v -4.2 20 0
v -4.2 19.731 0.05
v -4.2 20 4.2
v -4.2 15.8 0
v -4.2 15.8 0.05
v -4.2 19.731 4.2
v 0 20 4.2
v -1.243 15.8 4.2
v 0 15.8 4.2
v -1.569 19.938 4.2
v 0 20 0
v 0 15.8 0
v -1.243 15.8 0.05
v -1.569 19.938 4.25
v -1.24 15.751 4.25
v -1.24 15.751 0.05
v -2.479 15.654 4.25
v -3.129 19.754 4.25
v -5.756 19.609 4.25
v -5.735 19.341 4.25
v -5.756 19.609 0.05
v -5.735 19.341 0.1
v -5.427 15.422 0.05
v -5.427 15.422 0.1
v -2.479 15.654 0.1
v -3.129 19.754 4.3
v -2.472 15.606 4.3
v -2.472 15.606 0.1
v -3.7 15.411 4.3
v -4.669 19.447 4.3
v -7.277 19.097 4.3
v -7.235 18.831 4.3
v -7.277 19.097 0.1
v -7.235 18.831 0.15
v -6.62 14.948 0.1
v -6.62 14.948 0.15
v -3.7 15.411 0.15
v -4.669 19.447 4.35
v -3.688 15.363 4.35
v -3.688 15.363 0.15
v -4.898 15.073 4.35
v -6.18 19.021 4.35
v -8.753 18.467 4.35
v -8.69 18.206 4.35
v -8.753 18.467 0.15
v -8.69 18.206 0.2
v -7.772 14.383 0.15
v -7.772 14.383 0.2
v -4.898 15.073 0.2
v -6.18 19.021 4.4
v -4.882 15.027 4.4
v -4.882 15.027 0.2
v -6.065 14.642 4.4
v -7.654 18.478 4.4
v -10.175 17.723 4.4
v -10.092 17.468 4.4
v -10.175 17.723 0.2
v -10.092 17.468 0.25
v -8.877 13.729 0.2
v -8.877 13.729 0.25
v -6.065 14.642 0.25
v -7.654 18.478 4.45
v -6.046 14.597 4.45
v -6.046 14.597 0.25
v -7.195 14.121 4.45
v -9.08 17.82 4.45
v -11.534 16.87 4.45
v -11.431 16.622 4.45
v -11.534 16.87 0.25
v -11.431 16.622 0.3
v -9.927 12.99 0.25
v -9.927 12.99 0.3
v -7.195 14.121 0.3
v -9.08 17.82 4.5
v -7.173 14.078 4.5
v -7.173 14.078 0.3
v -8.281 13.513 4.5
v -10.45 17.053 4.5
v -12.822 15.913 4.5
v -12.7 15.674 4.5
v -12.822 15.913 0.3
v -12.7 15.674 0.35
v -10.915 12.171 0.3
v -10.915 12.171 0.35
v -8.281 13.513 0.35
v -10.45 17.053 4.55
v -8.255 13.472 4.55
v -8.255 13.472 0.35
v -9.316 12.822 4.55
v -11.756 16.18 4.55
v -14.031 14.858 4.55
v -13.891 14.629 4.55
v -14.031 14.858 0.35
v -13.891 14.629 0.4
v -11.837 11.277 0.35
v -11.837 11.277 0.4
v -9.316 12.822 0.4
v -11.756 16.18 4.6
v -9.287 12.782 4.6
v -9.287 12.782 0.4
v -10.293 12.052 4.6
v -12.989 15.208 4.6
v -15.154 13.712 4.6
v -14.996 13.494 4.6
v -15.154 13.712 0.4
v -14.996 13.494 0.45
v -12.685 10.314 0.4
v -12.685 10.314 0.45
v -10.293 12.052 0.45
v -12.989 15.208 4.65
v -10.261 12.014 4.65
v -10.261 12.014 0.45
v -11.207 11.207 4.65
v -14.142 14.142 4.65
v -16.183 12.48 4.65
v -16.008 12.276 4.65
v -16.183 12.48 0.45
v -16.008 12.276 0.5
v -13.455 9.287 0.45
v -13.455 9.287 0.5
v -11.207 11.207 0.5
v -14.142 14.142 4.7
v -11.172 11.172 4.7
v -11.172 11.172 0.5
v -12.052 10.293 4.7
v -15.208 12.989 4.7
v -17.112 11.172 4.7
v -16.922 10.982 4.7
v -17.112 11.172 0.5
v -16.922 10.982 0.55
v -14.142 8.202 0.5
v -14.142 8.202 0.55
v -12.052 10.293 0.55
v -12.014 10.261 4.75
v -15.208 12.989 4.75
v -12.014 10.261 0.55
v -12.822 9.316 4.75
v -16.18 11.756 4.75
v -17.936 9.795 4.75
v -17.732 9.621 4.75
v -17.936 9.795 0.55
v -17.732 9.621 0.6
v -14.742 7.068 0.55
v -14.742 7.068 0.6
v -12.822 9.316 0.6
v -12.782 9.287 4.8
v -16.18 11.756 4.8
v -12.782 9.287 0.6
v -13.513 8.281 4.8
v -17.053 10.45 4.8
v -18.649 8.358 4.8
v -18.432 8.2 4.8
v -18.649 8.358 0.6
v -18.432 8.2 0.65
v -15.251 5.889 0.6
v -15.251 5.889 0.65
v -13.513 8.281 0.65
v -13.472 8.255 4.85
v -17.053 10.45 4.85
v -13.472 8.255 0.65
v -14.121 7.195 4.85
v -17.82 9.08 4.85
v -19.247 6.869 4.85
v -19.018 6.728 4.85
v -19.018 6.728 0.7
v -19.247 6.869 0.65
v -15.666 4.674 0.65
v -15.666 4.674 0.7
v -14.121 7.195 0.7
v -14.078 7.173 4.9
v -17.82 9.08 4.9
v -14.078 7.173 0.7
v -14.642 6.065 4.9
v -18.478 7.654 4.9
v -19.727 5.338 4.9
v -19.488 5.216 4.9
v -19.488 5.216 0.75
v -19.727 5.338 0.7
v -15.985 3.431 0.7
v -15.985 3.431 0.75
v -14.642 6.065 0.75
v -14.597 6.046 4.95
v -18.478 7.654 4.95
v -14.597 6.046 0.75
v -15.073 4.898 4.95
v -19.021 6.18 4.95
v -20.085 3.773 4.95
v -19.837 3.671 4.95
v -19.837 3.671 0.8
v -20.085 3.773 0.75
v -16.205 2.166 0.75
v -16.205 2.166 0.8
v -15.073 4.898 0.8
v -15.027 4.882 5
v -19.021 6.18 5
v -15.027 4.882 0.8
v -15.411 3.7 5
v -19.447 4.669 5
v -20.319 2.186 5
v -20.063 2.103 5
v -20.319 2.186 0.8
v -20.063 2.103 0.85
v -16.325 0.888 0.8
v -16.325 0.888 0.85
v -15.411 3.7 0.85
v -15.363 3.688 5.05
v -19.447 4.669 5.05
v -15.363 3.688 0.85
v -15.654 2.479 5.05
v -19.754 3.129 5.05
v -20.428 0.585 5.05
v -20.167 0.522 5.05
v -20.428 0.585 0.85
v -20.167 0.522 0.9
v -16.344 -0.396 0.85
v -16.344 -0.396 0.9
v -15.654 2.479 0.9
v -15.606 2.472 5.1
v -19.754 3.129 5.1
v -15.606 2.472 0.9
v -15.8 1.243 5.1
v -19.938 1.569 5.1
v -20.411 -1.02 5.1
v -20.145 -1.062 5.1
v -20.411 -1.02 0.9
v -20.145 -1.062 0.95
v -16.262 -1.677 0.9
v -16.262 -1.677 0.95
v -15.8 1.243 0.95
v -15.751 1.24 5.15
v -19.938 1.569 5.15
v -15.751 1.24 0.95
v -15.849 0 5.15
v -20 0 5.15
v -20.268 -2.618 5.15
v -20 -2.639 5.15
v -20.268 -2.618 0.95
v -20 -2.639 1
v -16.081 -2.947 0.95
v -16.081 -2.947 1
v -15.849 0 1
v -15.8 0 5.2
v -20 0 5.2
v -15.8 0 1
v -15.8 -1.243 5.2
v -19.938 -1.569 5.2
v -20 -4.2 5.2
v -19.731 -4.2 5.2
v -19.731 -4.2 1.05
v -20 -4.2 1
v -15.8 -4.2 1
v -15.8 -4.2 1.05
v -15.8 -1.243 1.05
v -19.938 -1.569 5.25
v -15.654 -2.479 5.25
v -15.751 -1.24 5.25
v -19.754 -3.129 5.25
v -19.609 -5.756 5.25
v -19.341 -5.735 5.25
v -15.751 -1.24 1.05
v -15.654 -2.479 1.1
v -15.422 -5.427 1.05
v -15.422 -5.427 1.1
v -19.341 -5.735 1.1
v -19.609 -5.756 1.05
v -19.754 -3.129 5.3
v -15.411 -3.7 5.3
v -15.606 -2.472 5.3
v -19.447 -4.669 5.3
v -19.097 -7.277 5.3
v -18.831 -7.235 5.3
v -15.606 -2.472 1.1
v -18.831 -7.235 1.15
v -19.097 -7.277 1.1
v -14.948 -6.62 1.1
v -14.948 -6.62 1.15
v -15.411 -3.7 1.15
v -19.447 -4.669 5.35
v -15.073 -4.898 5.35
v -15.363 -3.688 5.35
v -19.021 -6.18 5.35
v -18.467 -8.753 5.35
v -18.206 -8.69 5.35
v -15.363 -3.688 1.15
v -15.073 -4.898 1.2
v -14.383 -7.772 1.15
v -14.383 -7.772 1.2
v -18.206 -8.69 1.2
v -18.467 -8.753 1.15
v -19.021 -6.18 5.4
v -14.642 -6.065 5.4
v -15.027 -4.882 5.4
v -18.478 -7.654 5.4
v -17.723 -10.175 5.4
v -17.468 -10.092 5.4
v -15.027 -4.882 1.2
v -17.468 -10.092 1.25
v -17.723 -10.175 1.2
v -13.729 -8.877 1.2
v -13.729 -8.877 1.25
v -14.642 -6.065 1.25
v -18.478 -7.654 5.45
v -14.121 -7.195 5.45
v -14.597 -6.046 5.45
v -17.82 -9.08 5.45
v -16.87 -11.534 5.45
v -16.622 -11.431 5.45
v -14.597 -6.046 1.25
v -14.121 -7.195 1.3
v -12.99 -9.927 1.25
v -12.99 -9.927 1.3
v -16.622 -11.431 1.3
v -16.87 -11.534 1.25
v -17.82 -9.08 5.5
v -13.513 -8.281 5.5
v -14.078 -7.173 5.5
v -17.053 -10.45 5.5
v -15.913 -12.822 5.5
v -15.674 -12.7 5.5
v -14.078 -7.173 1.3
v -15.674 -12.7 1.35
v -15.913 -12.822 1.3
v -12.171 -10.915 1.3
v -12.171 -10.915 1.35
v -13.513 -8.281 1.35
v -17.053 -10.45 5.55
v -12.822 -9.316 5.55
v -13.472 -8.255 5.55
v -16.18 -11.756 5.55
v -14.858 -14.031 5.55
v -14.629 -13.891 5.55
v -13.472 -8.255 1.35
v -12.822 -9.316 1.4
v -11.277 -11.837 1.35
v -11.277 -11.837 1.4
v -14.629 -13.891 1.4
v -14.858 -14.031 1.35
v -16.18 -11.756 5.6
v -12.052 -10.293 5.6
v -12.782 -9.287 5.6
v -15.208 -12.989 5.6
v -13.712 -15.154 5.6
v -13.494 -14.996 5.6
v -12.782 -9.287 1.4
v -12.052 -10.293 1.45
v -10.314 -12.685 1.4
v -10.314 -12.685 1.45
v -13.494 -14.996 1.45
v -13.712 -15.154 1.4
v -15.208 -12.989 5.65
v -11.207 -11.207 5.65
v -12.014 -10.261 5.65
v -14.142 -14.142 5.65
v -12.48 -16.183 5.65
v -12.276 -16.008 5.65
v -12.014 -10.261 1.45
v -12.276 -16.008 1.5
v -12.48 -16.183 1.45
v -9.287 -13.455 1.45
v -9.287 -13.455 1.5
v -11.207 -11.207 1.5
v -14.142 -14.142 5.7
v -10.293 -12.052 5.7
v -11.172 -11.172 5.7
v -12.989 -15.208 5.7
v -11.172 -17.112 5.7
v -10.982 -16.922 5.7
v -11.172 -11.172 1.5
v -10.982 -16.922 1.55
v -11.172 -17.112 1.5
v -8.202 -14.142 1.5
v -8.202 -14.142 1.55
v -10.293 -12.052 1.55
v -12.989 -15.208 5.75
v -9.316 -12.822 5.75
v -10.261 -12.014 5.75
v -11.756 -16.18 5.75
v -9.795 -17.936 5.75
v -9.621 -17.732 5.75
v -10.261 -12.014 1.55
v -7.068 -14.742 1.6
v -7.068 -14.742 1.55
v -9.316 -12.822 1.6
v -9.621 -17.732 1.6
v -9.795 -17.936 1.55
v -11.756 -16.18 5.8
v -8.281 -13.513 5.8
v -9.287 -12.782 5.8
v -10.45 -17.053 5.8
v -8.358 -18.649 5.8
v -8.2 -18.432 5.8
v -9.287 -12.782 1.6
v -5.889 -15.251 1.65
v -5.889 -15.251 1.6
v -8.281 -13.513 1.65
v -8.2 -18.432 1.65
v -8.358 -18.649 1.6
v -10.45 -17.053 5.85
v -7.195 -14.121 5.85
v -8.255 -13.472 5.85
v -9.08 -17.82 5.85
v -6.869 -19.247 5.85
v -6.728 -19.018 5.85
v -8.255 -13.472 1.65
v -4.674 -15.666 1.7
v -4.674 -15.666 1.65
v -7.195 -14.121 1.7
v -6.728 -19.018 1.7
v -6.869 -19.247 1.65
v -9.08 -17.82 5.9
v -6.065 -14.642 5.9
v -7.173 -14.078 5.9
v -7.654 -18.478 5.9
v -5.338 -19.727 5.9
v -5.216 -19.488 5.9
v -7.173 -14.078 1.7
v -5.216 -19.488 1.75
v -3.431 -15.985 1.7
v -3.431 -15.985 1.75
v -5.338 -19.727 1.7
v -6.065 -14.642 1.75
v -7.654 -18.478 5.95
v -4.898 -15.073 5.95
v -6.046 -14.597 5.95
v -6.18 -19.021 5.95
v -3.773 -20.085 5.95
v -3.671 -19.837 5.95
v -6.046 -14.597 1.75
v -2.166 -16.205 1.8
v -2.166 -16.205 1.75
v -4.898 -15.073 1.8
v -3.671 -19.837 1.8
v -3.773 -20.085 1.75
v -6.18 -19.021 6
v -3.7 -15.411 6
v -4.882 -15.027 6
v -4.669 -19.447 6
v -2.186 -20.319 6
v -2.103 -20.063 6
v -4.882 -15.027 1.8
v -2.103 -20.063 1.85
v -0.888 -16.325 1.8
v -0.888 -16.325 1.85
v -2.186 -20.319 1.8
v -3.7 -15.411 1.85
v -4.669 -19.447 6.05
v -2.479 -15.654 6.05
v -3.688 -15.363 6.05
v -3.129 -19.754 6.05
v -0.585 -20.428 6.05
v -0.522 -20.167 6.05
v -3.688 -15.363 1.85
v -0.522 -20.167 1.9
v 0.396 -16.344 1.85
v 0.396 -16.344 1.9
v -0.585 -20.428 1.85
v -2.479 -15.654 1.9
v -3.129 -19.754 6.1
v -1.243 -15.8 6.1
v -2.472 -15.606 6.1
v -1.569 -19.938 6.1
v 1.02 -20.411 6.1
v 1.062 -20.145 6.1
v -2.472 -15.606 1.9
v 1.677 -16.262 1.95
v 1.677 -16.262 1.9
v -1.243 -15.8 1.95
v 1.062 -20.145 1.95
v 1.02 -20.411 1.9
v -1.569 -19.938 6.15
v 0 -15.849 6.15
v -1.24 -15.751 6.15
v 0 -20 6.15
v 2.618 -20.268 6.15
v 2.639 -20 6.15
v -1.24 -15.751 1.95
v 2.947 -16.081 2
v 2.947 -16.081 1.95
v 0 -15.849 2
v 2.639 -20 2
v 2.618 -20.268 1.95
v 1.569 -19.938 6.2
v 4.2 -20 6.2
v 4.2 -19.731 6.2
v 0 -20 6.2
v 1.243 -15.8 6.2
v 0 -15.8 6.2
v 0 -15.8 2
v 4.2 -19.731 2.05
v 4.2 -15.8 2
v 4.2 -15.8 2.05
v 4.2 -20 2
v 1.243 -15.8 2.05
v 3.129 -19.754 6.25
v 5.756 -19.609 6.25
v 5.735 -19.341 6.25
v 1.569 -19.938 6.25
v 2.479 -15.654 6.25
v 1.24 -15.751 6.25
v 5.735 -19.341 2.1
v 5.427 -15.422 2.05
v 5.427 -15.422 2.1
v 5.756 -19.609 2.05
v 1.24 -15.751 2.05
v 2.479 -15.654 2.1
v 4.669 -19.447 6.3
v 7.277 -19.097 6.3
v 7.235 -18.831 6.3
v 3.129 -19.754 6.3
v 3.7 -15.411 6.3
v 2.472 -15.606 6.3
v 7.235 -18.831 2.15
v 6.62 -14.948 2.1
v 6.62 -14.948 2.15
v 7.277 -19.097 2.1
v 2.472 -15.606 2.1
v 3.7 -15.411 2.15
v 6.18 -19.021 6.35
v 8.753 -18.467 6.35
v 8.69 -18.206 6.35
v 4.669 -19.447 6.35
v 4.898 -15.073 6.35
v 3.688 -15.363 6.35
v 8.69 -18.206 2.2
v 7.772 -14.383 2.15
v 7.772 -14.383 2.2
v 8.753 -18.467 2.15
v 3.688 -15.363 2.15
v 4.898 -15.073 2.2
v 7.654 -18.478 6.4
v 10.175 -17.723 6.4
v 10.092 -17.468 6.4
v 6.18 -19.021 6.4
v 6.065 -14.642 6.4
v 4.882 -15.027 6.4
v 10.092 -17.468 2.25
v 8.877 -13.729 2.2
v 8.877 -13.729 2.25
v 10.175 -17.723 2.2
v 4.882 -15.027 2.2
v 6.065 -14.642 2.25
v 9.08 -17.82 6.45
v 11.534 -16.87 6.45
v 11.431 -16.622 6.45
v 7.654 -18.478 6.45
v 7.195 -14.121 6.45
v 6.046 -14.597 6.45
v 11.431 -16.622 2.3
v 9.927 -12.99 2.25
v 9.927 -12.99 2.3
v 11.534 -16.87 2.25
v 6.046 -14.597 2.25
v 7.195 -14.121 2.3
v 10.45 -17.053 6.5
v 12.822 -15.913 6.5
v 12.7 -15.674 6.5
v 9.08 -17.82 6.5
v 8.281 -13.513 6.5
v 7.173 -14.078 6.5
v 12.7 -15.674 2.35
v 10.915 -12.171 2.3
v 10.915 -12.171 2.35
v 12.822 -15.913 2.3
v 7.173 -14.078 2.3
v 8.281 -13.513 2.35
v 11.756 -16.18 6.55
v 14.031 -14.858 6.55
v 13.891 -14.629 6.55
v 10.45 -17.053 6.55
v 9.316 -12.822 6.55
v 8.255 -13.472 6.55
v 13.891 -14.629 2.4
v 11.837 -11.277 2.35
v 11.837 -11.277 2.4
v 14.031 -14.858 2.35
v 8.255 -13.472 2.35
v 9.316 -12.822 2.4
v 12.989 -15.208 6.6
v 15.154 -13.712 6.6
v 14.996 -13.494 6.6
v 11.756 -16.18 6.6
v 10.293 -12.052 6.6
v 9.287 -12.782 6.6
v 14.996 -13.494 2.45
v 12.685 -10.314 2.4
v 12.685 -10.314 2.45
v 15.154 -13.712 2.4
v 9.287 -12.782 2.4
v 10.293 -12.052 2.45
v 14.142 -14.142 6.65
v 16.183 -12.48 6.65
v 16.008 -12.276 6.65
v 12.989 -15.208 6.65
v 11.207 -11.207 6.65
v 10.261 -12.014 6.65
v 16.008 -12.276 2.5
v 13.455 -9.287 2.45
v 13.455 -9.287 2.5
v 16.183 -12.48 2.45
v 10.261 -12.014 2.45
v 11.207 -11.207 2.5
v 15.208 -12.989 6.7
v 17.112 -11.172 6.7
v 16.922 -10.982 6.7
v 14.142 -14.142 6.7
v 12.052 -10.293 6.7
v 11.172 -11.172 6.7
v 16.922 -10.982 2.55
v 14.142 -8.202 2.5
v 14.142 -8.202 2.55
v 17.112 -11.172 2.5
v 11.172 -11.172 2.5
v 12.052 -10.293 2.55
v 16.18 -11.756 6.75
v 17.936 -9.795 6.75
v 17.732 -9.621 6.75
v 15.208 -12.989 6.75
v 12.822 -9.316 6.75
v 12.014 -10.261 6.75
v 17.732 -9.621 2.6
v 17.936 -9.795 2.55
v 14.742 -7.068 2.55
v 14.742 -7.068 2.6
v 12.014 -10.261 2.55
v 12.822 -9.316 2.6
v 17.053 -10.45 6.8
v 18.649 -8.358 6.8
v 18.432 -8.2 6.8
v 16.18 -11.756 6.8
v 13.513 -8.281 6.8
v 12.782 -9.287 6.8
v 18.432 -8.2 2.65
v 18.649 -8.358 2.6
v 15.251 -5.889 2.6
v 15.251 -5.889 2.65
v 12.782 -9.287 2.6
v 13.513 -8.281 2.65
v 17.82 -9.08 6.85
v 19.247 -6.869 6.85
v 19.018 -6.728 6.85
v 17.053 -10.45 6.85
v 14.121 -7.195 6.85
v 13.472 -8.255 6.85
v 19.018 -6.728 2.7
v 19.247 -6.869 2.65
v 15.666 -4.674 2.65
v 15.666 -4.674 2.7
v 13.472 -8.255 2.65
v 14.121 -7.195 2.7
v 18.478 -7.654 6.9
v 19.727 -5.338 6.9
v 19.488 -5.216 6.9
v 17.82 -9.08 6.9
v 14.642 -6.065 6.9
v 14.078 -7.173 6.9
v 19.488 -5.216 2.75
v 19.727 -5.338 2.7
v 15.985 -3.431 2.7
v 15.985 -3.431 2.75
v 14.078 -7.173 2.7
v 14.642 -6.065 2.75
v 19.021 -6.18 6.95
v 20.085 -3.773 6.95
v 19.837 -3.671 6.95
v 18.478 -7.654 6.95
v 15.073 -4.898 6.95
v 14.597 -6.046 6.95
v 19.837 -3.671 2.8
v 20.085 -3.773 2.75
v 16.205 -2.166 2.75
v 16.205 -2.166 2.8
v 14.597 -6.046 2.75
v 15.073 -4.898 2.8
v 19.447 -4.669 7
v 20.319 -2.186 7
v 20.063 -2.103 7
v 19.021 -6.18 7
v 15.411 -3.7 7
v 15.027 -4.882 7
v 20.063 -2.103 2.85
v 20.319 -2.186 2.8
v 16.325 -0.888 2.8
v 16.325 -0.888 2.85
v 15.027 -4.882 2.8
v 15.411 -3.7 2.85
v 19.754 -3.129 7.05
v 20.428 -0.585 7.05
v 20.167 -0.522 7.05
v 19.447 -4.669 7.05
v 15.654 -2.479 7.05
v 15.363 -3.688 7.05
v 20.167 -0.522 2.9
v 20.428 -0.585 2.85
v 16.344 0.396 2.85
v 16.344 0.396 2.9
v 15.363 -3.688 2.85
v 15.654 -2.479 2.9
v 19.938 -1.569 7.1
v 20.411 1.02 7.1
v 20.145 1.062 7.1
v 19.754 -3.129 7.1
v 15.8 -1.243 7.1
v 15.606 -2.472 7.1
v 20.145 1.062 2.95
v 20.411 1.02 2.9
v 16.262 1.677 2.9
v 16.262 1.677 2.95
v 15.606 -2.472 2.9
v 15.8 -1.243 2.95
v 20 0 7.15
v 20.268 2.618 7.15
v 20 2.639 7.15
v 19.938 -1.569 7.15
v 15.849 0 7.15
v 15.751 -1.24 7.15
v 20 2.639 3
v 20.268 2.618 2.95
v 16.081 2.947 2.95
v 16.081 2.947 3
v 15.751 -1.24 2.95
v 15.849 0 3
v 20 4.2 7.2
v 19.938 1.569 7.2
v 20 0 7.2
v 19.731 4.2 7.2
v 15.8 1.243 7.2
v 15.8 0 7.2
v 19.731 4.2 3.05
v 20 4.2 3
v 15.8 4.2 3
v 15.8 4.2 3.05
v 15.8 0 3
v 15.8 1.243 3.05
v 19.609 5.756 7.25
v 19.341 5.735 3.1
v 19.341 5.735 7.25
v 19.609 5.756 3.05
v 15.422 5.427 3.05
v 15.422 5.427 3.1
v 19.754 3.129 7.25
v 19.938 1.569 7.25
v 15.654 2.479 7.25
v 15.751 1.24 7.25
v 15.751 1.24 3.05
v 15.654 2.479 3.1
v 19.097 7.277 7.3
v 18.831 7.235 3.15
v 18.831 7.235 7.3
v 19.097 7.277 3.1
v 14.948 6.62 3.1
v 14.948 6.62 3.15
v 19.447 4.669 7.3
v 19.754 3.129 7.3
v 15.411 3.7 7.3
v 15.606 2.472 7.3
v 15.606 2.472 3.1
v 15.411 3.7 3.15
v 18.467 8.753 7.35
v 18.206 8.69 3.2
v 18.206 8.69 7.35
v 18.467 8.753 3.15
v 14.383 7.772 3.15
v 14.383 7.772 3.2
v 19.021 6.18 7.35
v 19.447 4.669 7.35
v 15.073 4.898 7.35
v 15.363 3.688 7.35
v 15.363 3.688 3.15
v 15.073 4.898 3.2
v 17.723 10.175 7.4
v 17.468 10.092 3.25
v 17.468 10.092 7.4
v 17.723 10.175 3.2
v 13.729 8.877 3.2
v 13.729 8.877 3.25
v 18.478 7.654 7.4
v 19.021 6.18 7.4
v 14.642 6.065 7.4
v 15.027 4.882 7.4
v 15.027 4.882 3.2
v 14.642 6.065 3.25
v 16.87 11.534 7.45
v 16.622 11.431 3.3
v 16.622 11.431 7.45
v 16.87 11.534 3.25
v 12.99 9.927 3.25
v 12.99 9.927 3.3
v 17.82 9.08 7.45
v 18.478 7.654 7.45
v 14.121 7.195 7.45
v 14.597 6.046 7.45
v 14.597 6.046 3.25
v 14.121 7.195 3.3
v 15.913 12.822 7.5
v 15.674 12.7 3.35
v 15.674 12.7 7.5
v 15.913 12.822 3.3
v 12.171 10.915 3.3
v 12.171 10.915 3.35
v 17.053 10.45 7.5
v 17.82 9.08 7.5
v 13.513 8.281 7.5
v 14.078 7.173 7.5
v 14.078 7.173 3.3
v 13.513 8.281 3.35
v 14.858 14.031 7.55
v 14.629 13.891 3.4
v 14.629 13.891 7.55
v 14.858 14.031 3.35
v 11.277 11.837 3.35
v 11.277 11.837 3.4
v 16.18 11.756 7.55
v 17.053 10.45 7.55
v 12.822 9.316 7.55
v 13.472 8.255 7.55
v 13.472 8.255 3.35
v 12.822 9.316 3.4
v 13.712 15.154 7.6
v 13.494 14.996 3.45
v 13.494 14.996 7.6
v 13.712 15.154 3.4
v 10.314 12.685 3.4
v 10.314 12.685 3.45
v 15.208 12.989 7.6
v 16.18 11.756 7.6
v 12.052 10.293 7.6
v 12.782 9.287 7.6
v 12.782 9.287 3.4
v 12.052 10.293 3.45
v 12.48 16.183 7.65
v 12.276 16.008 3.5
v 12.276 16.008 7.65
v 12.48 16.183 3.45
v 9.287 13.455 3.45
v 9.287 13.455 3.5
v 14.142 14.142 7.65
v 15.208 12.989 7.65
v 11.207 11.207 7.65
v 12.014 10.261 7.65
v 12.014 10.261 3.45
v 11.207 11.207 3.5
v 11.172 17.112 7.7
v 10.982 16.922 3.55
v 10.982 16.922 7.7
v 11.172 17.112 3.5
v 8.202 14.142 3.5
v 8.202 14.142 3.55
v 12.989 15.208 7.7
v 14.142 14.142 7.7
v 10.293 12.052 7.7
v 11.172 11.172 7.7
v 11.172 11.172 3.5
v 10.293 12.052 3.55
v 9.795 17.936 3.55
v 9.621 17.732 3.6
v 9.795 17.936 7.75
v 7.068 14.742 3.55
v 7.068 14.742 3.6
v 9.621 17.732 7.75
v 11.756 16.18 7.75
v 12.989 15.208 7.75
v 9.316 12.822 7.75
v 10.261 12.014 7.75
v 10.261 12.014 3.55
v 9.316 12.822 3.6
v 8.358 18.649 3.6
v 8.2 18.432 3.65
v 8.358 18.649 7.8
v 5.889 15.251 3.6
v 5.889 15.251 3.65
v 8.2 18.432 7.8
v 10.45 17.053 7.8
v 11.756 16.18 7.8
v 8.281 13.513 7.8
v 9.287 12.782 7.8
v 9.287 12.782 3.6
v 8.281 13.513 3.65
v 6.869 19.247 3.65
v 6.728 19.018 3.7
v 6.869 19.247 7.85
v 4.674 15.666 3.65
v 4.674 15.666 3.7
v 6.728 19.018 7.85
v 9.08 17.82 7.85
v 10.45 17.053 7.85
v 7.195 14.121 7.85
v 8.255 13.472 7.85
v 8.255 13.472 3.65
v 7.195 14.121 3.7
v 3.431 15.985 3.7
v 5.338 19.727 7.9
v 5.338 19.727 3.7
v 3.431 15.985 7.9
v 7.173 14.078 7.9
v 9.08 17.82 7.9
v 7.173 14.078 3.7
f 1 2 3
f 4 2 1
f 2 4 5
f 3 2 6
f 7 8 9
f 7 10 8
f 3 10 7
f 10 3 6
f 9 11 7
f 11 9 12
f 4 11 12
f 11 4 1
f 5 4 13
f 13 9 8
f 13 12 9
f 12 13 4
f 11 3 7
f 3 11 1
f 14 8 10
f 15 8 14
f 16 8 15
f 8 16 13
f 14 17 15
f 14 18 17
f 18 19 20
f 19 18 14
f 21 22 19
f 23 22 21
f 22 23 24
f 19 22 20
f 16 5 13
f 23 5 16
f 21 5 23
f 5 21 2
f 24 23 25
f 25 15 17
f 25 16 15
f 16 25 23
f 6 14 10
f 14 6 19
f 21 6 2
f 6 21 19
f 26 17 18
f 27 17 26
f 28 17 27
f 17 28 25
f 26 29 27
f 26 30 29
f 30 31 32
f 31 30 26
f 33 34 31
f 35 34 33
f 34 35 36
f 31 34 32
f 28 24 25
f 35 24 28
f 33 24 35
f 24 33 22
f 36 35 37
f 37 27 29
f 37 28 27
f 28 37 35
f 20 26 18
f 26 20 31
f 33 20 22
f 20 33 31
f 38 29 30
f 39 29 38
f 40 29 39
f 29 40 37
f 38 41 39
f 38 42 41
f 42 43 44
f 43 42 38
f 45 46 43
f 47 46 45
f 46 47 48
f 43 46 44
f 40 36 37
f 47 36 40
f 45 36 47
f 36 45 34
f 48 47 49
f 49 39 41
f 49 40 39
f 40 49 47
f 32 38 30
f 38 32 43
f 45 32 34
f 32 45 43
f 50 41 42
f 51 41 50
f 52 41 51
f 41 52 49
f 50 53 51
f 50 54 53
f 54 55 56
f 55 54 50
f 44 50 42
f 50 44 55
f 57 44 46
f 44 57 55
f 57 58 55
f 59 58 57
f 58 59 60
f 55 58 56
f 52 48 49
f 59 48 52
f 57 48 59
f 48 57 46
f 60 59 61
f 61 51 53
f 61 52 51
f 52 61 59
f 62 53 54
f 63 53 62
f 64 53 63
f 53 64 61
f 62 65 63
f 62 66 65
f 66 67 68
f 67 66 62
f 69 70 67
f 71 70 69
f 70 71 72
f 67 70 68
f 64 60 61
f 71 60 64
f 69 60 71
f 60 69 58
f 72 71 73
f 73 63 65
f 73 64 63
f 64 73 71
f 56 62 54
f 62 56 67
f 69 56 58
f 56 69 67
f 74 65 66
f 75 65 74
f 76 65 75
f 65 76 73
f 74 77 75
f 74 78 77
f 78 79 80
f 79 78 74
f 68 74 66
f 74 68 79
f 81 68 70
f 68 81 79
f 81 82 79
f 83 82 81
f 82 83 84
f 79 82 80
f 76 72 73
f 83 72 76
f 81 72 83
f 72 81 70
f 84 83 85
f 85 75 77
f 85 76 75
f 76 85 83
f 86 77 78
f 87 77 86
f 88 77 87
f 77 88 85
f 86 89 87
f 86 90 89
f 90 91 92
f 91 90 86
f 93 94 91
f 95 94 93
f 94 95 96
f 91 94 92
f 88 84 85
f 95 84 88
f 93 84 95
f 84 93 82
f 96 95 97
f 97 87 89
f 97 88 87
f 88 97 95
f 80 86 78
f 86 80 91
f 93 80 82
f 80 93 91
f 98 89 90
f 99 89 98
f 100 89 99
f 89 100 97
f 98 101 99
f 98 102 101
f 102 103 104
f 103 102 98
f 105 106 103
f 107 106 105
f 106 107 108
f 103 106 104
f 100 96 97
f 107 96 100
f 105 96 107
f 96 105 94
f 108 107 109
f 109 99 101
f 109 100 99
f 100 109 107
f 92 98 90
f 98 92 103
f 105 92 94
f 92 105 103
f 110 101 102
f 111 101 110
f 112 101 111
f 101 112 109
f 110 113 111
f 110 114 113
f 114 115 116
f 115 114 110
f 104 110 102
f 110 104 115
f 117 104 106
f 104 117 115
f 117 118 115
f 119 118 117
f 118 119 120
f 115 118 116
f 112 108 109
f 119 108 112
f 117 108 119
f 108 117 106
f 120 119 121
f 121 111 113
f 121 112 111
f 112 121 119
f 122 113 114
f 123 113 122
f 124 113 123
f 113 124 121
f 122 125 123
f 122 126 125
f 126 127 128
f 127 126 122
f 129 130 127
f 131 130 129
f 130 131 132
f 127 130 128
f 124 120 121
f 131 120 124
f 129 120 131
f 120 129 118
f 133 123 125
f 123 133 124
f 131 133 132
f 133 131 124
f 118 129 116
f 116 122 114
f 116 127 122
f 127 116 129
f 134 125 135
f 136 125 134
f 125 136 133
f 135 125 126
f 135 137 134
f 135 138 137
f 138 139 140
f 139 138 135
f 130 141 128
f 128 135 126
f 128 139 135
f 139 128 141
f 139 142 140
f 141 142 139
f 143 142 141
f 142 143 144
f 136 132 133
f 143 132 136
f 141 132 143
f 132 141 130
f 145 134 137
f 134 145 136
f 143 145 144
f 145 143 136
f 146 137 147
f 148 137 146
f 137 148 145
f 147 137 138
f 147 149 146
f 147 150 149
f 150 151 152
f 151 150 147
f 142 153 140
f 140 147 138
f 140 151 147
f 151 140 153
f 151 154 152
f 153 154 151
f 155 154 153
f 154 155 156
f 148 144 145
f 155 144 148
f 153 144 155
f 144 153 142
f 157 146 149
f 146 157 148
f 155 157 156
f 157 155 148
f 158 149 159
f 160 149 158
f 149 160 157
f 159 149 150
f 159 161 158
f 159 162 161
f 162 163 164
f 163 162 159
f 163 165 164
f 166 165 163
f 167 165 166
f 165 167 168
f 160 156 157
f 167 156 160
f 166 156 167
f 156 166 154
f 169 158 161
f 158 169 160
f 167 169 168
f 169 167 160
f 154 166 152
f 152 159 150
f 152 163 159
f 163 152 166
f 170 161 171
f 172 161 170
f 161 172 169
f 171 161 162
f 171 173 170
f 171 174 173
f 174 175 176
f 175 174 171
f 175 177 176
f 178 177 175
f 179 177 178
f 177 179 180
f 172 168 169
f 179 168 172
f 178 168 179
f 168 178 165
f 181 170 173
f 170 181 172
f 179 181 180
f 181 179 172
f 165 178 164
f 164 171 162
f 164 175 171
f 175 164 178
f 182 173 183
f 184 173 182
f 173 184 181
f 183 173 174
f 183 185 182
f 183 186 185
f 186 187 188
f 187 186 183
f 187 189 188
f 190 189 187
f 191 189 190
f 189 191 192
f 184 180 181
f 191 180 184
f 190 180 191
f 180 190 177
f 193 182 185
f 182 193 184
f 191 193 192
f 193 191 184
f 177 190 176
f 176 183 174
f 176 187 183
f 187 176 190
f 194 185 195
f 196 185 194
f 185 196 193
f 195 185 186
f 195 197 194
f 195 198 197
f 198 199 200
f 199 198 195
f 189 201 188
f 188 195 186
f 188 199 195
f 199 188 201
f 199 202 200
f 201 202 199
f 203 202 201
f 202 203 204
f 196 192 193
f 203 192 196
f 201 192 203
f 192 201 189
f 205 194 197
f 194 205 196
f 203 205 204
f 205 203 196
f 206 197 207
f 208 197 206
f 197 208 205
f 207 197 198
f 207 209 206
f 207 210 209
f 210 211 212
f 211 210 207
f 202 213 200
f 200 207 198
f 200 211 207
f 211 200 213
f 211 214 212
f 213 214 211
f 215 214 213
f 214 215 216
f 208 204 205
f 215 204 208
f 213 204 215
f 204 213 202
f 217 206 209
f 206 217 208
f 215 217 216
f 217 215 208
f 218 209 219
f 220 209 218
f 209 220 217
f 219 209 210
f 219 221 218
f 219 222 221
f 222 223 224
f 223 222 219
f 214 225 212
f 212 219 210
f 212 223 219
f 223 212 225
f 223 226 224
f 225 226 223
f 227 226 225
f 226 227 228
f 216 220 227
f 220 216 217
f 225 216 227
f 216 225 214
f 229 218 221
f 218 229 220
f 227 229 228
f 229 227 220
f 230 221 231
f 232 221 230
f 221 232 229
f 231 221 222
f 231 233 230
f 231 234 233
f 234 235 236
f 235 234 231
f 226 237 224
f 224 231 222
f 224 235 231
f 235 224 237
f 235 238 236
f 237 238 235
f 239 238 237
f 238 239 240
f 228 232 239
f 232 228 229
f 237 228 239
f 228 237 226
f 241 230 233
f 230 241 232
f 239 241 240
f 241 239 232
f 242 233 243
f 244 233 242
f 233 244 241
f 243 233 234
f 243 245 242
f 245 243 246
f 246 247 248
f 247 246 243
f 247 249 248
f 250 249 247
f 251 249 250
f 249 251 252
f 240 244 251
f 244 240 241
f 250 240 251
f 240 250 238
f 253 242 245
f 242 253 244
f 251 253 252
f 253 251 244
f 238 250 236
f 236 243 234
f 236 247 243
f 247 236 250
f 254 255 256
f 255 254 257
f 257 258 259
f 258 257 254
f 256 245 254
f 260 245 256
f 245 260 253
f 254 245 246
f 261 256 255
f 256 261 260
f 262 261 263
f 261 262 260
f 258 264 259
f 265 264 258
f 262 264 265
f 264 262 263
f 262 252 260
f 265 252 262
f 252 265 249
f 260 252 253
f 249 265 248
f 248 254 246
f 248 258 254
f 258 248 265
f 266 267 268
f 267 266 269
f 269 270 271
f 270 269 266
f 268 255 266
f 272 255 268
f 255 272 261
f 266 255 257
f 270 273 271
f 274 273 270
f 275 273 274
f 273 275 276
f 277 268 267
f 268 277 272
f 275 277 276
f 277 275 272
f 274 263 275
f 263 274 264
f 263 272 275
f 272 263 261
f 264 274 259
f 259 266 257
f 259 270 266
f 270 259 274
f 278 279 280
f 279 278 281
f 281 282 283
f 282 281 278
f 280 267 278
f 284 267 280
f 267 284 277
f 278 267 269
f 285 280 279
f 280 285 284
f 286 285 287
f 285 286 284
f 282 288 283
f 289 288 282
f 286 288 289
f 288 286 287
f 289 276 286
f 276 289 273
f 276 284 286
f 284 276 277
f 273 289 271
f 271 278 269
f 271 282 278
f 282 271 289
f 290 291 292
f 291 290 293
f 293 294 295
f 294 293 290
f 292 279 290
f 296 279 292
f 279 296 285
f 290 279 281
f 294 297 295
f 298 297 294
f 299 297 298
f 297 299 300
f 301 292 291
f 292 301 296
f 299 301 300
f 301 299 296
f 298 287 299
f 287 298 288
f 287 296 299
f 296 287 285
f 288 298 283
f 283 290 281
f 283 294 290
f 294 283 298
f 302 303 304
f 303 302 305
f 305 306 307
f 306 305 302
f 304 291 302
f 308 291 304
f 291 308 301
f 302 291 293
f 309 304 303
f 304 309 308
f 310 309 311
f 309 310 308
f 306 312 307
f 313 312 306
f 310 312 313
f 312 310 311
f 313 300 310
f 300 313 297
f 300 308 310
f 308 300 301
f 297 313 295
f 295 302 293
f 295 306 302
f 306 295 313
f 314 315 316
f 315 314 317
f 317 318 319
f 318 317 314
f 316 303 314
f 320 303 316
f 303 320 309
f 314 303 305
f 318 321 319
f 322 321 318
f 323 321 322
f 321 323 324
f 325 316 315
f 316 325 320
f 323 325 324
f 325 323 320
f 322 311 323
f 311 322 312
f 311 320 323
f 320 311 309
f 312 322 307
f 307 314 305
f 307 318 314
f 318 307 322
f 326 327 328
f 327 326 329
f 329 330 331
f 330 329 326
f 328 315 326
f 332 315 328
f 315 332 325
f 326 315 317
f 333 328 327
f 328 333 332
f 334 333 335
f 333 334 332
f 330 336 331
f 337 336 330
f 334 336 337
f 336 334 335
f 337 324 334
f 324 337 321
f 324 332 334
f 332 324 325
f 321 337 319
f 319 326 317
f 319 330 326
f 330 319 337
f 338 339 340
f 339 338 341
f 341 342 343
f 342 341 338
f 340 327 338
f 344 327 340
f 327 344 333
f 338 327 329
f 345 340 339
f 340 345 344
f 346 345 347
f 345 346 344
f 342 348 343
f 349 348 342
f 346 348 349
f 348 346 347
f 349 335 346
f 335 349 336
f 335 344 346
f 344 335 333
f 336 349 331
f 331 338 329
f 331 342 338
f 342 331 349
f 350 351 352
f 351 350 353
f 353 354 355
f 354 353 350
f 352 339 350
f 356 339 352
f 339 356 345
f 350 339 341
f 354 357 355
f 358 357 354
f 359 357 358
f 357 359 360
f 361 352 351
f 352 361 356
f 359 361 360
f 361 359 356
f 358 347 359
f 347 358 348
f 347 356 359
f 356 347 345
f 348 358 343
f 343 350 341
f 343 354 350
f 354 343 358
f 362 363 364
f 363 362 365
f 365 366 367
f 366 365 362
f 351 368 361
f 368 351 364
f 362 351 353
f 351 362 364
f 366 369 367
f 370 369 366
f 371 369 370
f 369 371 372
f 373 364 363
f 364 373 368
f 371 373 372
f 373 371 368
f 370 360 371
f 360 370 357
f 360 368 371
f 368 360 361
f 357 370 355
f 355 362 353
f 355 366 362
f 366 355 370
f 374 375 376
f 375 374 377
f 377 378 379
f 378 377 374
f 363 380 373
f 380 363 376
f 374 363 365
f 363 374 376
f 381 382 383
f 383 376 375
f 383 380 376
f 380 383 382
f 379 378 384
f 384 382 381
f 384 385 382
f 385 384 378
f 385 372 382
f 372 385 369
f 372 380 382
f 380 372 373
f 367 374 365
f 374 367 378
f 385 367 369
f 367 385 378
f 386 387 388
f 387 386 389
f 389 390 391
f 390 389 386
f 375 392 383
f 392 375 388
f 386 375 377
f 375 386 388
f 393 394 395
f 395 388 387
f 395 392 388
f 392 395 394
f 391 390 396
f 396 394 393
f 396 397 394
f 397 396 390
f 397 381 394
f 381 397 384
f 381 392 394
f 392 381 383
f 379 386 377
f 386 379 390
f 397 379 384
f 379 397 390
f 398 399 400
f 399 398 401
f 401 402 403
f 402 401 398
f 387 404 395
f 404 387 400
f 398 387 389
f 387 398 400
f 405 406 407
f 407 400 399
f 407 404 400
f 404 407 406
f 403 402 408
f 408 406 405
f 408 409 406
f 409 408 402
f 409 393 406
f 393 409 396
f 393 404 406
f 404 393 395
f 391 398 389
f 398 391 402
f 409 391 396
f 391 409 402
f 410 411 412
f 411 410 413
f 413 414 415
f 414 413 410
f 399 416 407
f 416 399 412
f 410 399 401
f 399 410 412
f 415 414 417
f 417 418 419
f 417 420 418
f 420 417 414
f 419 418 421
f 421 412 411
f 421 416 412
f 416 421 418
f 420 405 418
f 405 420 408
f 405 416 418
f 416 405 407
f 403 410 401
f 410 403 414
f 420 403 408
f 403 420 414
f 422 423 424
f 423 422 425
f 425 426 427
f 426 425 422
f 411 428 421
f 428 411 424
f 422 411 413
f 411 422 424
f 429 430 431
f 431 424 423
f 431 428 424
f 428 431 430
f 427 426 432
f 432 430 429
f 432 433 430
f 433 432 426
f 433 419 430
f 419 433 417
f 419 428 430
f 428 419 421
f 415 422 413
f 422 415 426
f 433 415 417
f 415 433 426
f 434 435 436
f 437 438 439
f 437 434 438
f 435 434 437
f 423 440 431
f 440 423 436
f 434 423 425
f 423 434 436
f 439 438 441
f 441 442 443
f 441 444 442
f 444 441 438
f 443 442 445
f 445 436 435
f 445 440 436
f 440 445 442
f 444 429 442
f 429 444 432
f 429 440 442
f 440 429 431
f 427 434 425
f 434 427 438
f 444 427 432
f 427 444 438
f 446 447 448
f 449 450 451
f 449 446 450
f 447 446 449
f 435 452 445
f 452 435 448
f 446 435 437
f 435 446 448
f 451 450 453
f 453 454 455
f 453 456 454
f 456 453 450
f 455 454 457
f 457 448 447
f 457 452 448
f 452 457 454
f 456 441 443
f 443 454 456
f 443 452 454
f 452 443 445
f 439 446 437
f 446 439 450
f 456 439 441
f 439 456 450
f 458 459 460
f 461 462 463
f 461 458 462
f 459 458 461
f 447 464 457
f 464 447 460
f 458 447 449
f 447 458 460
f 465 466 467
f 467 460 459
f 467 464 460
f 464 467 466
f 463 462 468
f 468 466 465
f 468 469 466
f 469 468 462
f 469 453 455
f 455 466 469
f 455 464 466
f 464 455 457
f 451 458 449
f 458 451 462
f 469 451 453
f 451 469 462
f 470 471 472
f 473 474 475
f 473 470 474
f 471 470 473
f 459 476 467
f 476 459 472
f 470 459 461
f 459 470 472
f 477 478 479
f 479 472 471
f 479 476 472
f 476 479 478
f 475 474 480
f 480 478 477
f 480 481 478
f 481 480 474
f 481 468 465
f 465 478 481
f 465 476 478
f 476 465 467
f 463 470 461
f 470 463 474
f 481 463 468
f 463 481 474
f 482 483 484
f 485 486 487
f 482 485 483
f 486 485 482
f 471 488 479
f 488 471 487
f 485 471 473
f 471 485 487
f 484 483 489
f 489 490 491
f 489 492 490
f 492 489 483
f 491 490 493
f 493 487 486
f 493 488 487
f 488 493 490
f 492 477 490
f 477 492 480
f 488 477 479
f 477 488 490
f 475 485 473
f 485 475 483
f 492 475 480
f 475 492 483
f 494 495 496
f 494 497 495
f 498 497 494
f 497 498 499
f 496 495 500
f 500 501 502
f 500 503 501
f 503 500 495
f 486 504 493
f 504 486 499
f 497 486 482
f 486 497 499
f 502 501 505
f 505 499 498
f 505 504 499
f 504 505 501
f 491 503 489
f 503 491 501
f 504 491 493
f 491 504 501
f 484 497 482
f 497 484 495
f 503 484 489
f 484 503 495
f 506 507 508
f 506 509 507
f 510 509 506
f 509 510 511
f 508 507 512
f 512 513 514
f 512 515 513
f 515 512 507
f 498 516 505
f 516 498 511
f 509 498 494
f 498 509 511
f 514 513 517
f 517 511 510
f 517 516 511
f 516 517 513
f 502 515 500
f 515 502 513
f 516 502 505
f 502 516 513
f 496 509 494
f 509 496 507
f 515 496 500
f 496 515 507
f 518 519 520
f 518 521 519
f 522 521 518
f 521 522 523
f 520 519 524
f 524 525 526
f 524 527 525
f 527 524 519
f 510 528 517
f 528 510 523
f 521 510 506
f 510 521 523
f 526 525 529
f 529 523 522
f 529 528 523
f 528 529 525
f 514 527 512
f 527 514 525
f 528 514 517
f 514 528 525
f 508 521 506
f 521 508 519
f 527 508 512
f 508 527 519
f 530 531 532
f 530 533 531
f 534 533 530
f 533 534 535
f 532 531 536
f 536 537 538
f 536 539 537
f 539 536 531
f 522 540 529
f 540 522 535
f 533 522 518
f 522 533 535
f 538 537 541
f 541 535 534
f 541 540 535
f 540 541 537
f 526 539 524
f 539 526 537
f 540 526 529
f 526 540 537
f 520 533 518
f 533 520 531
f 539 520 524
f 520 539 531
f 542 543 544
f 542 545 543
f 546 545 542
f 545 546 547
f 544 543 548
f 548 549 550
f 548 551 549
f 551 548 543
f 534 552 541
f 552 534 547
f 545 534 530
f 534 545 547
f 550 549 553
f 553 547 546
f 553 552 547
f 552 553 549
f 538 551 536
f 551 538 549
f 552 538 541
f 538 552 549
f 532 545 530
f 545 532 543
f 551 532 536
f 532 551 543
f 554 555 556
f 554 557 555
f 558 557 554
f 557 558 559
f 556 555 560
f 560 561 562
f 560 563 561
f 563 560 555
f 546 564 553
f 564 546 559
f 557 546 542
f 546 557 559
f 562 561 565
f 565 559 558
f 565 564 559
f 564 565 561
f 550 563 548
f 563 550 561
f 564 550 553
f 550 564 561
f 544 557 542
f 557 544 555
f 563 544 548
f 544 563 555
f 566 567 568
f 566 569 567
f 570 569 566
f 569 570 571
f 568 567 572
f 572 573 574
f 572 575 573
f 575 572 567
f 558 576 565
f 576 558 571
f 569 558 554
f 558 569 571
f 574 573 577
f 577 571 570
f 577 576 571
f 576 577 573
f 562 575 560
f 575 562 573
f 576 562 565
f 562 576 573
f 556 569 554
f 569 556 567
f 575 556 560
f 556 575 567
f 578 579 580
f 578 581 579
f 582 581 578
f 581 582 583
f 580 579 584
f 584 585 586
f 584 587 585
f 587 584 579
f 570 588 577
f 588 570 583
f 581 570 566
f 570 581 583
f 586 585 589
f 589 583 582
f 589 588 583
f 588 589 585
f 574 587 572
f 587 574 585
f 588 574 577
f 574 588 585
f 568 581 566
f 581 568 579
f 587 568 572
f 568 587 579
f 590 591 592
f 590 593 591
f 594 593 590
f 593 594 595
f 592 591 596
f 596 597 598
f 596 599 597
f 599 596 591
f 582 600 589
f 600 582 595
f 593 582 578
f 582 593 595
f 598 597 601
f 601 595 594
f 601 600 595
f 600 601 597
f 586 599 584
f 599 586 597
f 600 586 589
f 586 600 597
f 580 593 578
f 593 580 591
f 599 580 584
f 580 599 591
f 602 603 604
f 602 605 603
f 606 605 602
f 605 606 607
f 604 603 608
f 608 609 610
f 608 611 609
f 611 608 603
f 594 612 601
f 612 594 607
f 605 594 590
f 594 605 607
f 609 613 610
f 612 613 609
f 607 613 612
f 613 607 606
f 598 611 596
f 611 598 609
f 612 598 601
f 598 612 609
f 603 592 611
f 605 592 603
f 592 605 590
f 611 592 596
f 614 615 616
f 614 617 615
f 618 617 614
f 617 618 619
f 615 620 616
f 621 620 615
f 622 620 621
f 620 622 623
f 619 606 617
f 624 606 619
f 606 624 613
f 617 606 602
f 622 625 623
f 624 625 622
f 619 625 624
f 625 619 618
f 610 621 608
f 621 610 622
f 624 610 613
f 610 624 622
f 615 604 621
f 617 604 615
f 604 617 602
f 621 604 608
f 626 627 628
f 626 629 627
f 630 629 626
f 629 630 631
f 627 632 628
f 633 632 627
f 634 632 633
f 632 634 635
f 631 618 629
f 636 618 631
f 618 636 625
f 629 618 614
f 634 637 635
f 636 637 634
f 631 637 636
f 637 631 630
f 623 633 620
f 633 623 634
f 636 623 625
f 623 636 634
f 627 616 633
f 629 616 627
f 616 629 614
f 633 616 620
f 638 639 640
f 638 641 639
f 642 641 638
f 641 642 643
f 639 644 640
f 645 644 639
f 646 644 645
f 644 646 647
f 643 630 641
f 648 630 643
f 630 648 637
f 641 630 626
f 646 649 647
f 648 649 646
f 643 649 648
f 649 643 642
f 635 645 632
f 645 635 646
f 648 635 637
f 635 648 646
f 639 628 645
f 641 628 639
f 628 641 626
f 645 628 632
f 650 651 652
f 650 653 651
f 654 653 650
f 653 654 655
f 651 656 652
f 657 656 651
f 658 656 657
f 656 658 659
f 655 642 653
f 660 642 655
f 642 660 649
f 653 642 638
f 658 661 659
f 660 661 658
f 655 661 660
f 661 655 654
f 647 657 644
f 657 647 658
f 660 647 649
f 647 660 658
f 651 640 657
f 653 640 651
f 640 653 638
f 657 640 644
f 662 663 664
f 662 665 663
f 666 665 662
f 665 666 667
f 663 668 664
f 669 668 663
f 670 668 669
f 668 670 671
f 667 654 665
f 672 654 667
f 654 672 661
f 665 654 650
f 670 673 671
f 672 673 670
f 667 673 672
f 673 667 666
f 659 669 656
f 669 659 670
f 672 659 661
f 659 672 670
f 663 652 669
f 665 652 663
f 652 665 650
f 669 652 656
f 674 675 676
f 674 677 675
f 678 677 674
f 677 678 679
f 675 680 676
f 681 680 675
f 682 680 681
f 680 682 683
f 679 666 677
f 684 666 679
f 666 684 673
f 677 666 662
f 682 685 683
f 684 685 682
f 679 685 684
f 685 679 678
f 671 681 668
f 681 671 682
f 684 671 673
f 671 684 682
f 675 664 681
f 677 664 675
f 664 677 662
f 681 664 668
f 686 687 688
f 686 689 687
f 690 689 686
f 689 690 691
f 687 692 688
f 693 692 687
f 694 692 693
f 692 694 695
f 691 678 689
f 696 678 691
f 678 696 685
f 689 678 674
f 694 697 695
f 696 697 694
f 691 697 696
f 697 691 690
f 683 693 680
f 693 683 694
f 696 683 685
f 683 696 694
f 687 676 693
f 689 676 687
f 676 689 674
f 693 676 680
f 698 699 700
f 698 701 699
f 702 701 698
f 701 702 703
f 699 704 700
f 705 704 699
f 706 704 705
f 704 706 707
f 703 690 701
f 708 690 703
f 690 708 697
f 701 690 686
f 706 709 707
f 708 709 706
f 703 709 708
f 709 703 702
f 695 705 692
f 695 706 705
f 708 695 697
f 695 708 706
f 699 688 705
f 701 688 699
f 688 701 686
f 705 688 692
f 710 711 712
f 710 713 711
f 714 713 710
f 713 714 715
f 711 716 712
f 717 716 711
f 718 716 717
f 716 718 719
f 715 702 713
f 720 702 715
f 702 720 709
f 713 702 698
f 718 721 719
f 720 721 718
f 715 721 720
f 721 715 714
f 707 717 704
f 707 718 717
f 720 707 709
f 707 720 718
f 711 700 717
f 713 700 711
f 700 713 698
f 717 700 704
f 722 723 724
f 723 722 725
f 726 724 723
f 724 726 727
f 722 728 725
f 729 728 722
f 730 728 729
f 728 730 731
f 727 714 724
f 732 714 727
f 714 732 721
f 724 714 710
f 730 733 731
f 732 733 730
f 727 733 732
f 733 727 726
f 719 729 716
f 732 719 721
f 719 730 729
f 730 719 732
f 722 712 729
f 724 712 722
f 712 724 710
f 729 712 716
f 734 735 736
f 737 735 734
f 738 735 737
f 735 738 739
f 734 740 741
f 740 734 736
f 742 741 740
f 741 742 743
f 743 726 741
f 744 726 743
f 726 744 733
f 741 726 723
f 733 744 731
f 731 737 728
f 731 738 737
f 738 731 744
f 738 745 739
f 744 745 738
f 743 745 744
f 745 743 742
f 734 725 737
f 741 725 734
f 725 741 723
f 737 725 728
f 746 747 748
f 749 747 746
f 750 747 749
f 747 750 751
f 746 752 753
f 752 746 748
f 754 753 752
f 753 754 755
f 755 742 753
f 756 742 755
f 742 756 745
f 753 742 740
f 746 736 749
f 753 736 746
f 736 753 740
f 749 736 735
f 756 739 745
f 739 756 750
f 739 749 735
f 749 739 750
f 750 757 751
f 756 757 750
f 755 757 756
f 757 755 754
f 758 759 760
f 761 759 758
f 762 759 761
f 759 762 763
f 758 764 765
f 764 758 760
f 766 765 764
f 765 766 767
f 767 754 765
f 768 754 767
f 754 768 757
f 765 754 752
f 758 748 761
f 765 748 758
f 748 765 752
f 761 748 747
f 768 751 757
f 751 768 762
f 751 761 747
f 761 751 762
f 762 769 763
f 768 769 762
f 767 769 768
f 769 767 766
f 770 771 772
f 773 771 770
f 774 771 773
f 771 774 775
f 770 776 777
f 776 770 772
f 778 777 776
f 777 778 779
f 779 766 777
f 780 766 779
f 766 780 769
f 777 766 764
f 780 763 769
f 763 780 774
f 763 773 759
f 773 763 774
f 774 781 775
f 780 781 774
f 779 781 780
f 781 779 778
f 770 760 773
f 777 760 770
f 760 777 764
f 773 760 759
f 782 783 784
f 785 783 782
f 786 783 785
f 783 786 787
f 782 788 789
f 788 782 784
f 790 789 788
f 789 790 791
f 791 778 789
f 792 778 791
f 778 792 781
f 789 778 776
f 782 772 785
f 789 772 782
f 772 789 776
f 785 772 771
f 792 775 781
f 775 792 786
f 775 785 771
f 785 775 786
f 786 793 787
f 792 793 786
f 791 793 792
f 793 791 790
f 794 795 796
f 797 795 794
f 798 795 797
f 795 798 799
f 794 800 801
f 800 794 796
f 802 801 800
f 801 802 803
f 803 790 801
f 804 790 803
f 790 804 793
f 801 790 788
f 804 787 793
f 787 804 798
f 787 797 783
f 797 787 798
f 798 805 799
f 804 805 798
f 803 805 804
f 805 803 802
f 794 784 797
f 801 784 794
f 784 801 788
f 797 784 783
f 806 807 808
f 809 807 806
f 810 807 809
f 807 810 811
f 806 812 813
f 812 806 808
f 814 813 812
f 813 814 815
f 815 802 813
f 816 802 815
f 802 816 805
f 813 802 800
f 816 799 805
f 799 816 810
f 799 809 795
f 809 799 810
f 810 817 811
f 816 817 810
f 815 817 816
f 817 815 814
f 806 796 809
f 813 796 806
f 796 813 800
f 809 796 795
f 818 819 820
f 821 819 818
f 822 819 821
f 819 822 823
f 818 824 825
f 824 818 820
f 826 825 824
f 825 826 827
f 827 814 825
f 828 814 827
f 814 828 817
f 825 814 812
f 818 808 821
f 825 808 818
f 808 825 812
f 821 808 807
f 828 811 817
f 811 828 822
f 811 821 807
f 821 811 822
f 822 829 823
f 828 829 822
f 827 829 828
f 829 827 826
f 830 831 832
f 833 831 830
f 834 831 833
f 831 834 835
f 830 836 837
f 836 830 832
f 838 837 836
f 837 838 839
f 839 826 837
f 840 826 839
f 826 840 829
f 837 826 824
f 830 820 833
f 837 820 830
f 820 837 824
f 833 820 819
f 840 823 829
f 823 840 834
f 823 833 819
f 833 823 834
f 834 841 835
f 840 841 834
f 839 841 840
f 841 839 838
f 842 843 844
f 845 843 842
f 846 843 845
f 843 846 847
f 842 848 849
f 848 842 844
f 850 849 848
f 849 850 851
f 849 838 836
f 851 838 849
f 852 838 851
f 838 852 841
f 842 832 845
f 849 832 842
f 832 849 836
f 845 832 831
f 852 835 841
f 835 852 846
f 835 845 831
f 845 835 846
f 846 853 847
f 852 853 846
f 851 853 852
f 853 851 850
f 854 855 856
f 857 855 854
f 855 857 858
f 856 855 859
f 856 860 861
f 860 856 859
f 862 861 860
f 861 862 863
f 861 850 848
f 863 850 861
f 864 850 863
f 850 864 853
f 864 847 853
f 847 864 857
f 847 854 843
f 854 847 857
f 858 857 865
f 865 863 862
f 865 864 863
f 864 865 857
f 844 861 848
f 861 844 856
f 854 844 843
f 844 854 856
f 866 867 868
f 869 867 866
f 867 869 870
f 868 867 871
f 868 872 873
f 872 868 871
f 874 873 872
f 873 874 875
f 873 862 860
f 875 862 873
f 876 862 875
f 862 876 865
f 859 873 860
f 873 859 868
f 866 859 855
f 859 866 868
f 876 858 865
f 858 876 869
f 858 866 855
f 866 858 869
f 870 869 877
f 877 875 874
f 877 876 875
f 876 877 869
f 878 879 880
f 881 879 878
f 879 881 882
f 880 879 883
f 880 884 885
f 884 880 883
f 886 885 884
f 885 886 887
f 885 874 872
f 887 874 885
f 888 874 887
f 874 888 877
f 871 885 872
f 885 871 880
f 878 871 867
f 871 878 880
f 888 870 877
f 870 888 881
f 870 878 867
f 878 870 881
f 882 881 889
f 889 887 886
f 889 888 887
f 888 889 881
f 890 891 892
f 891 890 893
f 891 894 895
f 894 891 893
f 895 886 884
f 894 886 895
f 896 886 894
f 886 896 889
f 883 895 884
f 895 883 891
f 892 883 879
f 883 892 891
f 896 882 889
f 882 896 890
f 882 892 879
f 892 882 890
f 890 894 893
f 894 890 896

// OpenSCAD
// file: variables.scad
// General

resolution = 80;
delta = 0.2;

// dimensions tubes pvc

rayon_ext_tube_32 = 16;
rayon_int_tube_32 = 13;
epaisseur_tube_32 = rayon_ext_tube_32 - rayon_int_tube_32;

rayon_ext_tube_40 = 20;
rayon_int_tube_40 = 17.5;
epaisseur_tube_40 = rayon_ext_tube_40 - rayon_int_tube_40;

ret32 = rayon_ext_tube_32;
rit32 = rayon_int_tube_32;
ep32  = epaisseur_tube_32;
ret40 = rayon_ext_tube_40;
rit40 = rayon_int_tube_40;
ep40  = epaisseur_tube_40;

// Reducteur

epaisseur_reducteur = 4;

// L'embout accueille un tube pvc de 40mm de diamètre.

hauteur_embout = 20;
rayon_int_embout = rayon_ext_tube_40 + delta;
rayon_ext_embout = 24 + delta;

hauteur_butee = 2;
rayon_int_butee = 16;

// Jonction: section de contact entre les deux pièces.
hauteur_grower = 4;

rayon_ext_culot = rayon_ext_tube_40 - delta;
rayon_int_culot = 18 - delta;
hauteur_jonction = 30;

hauteur_totale = hauteur_jonction + hauteur_embout + hauteur_butee + hauteur_grower;

profondeur_douille = 12;

largeur_empreinte = 6;

position_z_empreinte = hauteur_totale - profondeur_douille + 1;

nb_baionette = 3;
rayon_baionette = largeur_empreinte / 2;
baionette_z = hauteur_totale - (hauteur_jonction - profondeur_douille);
// file: common.scad
module tube(hauteur, rayon_exterieur, rayon_interieur, resolution=60) {
	difference(){
	  cylinder(hauteur, rayon_exterieur, rayon_exterieur, $fn=resolution);
	  translate([0,0,-1])	
	 	  cylinder(hauteur + 2 , rayon_interieur, rayon_interieur, $fn=resolution);
	}
}

module donut(nombre_spheres, rayon_spheres, rayon_exterieur){
	for ( i= [0:nombre_spheres])
		rotate([0,0,i*(360/nombre_spheres)]) {
			translate([rayon_exterieur,0,0])
			sphere(rayon_spheres, $fn=resolution_spheres);
		}
}
// main file
include <common.scad>;
include <variables.scad>;

n = 80;
hauteur = hauteur_grower;
largeur = rayon_int_embout - rayon_int_butee;
rayon_int = rayon_int_embout - largeur;

for ( i= [0:n-6])
	translate([0,0,i*(hauteur/n)])
	rotate([0,0,i*(360/n)]) {
		translate([-largeur, rayon_int-delta, 0])
			cube(largeur);
	}
